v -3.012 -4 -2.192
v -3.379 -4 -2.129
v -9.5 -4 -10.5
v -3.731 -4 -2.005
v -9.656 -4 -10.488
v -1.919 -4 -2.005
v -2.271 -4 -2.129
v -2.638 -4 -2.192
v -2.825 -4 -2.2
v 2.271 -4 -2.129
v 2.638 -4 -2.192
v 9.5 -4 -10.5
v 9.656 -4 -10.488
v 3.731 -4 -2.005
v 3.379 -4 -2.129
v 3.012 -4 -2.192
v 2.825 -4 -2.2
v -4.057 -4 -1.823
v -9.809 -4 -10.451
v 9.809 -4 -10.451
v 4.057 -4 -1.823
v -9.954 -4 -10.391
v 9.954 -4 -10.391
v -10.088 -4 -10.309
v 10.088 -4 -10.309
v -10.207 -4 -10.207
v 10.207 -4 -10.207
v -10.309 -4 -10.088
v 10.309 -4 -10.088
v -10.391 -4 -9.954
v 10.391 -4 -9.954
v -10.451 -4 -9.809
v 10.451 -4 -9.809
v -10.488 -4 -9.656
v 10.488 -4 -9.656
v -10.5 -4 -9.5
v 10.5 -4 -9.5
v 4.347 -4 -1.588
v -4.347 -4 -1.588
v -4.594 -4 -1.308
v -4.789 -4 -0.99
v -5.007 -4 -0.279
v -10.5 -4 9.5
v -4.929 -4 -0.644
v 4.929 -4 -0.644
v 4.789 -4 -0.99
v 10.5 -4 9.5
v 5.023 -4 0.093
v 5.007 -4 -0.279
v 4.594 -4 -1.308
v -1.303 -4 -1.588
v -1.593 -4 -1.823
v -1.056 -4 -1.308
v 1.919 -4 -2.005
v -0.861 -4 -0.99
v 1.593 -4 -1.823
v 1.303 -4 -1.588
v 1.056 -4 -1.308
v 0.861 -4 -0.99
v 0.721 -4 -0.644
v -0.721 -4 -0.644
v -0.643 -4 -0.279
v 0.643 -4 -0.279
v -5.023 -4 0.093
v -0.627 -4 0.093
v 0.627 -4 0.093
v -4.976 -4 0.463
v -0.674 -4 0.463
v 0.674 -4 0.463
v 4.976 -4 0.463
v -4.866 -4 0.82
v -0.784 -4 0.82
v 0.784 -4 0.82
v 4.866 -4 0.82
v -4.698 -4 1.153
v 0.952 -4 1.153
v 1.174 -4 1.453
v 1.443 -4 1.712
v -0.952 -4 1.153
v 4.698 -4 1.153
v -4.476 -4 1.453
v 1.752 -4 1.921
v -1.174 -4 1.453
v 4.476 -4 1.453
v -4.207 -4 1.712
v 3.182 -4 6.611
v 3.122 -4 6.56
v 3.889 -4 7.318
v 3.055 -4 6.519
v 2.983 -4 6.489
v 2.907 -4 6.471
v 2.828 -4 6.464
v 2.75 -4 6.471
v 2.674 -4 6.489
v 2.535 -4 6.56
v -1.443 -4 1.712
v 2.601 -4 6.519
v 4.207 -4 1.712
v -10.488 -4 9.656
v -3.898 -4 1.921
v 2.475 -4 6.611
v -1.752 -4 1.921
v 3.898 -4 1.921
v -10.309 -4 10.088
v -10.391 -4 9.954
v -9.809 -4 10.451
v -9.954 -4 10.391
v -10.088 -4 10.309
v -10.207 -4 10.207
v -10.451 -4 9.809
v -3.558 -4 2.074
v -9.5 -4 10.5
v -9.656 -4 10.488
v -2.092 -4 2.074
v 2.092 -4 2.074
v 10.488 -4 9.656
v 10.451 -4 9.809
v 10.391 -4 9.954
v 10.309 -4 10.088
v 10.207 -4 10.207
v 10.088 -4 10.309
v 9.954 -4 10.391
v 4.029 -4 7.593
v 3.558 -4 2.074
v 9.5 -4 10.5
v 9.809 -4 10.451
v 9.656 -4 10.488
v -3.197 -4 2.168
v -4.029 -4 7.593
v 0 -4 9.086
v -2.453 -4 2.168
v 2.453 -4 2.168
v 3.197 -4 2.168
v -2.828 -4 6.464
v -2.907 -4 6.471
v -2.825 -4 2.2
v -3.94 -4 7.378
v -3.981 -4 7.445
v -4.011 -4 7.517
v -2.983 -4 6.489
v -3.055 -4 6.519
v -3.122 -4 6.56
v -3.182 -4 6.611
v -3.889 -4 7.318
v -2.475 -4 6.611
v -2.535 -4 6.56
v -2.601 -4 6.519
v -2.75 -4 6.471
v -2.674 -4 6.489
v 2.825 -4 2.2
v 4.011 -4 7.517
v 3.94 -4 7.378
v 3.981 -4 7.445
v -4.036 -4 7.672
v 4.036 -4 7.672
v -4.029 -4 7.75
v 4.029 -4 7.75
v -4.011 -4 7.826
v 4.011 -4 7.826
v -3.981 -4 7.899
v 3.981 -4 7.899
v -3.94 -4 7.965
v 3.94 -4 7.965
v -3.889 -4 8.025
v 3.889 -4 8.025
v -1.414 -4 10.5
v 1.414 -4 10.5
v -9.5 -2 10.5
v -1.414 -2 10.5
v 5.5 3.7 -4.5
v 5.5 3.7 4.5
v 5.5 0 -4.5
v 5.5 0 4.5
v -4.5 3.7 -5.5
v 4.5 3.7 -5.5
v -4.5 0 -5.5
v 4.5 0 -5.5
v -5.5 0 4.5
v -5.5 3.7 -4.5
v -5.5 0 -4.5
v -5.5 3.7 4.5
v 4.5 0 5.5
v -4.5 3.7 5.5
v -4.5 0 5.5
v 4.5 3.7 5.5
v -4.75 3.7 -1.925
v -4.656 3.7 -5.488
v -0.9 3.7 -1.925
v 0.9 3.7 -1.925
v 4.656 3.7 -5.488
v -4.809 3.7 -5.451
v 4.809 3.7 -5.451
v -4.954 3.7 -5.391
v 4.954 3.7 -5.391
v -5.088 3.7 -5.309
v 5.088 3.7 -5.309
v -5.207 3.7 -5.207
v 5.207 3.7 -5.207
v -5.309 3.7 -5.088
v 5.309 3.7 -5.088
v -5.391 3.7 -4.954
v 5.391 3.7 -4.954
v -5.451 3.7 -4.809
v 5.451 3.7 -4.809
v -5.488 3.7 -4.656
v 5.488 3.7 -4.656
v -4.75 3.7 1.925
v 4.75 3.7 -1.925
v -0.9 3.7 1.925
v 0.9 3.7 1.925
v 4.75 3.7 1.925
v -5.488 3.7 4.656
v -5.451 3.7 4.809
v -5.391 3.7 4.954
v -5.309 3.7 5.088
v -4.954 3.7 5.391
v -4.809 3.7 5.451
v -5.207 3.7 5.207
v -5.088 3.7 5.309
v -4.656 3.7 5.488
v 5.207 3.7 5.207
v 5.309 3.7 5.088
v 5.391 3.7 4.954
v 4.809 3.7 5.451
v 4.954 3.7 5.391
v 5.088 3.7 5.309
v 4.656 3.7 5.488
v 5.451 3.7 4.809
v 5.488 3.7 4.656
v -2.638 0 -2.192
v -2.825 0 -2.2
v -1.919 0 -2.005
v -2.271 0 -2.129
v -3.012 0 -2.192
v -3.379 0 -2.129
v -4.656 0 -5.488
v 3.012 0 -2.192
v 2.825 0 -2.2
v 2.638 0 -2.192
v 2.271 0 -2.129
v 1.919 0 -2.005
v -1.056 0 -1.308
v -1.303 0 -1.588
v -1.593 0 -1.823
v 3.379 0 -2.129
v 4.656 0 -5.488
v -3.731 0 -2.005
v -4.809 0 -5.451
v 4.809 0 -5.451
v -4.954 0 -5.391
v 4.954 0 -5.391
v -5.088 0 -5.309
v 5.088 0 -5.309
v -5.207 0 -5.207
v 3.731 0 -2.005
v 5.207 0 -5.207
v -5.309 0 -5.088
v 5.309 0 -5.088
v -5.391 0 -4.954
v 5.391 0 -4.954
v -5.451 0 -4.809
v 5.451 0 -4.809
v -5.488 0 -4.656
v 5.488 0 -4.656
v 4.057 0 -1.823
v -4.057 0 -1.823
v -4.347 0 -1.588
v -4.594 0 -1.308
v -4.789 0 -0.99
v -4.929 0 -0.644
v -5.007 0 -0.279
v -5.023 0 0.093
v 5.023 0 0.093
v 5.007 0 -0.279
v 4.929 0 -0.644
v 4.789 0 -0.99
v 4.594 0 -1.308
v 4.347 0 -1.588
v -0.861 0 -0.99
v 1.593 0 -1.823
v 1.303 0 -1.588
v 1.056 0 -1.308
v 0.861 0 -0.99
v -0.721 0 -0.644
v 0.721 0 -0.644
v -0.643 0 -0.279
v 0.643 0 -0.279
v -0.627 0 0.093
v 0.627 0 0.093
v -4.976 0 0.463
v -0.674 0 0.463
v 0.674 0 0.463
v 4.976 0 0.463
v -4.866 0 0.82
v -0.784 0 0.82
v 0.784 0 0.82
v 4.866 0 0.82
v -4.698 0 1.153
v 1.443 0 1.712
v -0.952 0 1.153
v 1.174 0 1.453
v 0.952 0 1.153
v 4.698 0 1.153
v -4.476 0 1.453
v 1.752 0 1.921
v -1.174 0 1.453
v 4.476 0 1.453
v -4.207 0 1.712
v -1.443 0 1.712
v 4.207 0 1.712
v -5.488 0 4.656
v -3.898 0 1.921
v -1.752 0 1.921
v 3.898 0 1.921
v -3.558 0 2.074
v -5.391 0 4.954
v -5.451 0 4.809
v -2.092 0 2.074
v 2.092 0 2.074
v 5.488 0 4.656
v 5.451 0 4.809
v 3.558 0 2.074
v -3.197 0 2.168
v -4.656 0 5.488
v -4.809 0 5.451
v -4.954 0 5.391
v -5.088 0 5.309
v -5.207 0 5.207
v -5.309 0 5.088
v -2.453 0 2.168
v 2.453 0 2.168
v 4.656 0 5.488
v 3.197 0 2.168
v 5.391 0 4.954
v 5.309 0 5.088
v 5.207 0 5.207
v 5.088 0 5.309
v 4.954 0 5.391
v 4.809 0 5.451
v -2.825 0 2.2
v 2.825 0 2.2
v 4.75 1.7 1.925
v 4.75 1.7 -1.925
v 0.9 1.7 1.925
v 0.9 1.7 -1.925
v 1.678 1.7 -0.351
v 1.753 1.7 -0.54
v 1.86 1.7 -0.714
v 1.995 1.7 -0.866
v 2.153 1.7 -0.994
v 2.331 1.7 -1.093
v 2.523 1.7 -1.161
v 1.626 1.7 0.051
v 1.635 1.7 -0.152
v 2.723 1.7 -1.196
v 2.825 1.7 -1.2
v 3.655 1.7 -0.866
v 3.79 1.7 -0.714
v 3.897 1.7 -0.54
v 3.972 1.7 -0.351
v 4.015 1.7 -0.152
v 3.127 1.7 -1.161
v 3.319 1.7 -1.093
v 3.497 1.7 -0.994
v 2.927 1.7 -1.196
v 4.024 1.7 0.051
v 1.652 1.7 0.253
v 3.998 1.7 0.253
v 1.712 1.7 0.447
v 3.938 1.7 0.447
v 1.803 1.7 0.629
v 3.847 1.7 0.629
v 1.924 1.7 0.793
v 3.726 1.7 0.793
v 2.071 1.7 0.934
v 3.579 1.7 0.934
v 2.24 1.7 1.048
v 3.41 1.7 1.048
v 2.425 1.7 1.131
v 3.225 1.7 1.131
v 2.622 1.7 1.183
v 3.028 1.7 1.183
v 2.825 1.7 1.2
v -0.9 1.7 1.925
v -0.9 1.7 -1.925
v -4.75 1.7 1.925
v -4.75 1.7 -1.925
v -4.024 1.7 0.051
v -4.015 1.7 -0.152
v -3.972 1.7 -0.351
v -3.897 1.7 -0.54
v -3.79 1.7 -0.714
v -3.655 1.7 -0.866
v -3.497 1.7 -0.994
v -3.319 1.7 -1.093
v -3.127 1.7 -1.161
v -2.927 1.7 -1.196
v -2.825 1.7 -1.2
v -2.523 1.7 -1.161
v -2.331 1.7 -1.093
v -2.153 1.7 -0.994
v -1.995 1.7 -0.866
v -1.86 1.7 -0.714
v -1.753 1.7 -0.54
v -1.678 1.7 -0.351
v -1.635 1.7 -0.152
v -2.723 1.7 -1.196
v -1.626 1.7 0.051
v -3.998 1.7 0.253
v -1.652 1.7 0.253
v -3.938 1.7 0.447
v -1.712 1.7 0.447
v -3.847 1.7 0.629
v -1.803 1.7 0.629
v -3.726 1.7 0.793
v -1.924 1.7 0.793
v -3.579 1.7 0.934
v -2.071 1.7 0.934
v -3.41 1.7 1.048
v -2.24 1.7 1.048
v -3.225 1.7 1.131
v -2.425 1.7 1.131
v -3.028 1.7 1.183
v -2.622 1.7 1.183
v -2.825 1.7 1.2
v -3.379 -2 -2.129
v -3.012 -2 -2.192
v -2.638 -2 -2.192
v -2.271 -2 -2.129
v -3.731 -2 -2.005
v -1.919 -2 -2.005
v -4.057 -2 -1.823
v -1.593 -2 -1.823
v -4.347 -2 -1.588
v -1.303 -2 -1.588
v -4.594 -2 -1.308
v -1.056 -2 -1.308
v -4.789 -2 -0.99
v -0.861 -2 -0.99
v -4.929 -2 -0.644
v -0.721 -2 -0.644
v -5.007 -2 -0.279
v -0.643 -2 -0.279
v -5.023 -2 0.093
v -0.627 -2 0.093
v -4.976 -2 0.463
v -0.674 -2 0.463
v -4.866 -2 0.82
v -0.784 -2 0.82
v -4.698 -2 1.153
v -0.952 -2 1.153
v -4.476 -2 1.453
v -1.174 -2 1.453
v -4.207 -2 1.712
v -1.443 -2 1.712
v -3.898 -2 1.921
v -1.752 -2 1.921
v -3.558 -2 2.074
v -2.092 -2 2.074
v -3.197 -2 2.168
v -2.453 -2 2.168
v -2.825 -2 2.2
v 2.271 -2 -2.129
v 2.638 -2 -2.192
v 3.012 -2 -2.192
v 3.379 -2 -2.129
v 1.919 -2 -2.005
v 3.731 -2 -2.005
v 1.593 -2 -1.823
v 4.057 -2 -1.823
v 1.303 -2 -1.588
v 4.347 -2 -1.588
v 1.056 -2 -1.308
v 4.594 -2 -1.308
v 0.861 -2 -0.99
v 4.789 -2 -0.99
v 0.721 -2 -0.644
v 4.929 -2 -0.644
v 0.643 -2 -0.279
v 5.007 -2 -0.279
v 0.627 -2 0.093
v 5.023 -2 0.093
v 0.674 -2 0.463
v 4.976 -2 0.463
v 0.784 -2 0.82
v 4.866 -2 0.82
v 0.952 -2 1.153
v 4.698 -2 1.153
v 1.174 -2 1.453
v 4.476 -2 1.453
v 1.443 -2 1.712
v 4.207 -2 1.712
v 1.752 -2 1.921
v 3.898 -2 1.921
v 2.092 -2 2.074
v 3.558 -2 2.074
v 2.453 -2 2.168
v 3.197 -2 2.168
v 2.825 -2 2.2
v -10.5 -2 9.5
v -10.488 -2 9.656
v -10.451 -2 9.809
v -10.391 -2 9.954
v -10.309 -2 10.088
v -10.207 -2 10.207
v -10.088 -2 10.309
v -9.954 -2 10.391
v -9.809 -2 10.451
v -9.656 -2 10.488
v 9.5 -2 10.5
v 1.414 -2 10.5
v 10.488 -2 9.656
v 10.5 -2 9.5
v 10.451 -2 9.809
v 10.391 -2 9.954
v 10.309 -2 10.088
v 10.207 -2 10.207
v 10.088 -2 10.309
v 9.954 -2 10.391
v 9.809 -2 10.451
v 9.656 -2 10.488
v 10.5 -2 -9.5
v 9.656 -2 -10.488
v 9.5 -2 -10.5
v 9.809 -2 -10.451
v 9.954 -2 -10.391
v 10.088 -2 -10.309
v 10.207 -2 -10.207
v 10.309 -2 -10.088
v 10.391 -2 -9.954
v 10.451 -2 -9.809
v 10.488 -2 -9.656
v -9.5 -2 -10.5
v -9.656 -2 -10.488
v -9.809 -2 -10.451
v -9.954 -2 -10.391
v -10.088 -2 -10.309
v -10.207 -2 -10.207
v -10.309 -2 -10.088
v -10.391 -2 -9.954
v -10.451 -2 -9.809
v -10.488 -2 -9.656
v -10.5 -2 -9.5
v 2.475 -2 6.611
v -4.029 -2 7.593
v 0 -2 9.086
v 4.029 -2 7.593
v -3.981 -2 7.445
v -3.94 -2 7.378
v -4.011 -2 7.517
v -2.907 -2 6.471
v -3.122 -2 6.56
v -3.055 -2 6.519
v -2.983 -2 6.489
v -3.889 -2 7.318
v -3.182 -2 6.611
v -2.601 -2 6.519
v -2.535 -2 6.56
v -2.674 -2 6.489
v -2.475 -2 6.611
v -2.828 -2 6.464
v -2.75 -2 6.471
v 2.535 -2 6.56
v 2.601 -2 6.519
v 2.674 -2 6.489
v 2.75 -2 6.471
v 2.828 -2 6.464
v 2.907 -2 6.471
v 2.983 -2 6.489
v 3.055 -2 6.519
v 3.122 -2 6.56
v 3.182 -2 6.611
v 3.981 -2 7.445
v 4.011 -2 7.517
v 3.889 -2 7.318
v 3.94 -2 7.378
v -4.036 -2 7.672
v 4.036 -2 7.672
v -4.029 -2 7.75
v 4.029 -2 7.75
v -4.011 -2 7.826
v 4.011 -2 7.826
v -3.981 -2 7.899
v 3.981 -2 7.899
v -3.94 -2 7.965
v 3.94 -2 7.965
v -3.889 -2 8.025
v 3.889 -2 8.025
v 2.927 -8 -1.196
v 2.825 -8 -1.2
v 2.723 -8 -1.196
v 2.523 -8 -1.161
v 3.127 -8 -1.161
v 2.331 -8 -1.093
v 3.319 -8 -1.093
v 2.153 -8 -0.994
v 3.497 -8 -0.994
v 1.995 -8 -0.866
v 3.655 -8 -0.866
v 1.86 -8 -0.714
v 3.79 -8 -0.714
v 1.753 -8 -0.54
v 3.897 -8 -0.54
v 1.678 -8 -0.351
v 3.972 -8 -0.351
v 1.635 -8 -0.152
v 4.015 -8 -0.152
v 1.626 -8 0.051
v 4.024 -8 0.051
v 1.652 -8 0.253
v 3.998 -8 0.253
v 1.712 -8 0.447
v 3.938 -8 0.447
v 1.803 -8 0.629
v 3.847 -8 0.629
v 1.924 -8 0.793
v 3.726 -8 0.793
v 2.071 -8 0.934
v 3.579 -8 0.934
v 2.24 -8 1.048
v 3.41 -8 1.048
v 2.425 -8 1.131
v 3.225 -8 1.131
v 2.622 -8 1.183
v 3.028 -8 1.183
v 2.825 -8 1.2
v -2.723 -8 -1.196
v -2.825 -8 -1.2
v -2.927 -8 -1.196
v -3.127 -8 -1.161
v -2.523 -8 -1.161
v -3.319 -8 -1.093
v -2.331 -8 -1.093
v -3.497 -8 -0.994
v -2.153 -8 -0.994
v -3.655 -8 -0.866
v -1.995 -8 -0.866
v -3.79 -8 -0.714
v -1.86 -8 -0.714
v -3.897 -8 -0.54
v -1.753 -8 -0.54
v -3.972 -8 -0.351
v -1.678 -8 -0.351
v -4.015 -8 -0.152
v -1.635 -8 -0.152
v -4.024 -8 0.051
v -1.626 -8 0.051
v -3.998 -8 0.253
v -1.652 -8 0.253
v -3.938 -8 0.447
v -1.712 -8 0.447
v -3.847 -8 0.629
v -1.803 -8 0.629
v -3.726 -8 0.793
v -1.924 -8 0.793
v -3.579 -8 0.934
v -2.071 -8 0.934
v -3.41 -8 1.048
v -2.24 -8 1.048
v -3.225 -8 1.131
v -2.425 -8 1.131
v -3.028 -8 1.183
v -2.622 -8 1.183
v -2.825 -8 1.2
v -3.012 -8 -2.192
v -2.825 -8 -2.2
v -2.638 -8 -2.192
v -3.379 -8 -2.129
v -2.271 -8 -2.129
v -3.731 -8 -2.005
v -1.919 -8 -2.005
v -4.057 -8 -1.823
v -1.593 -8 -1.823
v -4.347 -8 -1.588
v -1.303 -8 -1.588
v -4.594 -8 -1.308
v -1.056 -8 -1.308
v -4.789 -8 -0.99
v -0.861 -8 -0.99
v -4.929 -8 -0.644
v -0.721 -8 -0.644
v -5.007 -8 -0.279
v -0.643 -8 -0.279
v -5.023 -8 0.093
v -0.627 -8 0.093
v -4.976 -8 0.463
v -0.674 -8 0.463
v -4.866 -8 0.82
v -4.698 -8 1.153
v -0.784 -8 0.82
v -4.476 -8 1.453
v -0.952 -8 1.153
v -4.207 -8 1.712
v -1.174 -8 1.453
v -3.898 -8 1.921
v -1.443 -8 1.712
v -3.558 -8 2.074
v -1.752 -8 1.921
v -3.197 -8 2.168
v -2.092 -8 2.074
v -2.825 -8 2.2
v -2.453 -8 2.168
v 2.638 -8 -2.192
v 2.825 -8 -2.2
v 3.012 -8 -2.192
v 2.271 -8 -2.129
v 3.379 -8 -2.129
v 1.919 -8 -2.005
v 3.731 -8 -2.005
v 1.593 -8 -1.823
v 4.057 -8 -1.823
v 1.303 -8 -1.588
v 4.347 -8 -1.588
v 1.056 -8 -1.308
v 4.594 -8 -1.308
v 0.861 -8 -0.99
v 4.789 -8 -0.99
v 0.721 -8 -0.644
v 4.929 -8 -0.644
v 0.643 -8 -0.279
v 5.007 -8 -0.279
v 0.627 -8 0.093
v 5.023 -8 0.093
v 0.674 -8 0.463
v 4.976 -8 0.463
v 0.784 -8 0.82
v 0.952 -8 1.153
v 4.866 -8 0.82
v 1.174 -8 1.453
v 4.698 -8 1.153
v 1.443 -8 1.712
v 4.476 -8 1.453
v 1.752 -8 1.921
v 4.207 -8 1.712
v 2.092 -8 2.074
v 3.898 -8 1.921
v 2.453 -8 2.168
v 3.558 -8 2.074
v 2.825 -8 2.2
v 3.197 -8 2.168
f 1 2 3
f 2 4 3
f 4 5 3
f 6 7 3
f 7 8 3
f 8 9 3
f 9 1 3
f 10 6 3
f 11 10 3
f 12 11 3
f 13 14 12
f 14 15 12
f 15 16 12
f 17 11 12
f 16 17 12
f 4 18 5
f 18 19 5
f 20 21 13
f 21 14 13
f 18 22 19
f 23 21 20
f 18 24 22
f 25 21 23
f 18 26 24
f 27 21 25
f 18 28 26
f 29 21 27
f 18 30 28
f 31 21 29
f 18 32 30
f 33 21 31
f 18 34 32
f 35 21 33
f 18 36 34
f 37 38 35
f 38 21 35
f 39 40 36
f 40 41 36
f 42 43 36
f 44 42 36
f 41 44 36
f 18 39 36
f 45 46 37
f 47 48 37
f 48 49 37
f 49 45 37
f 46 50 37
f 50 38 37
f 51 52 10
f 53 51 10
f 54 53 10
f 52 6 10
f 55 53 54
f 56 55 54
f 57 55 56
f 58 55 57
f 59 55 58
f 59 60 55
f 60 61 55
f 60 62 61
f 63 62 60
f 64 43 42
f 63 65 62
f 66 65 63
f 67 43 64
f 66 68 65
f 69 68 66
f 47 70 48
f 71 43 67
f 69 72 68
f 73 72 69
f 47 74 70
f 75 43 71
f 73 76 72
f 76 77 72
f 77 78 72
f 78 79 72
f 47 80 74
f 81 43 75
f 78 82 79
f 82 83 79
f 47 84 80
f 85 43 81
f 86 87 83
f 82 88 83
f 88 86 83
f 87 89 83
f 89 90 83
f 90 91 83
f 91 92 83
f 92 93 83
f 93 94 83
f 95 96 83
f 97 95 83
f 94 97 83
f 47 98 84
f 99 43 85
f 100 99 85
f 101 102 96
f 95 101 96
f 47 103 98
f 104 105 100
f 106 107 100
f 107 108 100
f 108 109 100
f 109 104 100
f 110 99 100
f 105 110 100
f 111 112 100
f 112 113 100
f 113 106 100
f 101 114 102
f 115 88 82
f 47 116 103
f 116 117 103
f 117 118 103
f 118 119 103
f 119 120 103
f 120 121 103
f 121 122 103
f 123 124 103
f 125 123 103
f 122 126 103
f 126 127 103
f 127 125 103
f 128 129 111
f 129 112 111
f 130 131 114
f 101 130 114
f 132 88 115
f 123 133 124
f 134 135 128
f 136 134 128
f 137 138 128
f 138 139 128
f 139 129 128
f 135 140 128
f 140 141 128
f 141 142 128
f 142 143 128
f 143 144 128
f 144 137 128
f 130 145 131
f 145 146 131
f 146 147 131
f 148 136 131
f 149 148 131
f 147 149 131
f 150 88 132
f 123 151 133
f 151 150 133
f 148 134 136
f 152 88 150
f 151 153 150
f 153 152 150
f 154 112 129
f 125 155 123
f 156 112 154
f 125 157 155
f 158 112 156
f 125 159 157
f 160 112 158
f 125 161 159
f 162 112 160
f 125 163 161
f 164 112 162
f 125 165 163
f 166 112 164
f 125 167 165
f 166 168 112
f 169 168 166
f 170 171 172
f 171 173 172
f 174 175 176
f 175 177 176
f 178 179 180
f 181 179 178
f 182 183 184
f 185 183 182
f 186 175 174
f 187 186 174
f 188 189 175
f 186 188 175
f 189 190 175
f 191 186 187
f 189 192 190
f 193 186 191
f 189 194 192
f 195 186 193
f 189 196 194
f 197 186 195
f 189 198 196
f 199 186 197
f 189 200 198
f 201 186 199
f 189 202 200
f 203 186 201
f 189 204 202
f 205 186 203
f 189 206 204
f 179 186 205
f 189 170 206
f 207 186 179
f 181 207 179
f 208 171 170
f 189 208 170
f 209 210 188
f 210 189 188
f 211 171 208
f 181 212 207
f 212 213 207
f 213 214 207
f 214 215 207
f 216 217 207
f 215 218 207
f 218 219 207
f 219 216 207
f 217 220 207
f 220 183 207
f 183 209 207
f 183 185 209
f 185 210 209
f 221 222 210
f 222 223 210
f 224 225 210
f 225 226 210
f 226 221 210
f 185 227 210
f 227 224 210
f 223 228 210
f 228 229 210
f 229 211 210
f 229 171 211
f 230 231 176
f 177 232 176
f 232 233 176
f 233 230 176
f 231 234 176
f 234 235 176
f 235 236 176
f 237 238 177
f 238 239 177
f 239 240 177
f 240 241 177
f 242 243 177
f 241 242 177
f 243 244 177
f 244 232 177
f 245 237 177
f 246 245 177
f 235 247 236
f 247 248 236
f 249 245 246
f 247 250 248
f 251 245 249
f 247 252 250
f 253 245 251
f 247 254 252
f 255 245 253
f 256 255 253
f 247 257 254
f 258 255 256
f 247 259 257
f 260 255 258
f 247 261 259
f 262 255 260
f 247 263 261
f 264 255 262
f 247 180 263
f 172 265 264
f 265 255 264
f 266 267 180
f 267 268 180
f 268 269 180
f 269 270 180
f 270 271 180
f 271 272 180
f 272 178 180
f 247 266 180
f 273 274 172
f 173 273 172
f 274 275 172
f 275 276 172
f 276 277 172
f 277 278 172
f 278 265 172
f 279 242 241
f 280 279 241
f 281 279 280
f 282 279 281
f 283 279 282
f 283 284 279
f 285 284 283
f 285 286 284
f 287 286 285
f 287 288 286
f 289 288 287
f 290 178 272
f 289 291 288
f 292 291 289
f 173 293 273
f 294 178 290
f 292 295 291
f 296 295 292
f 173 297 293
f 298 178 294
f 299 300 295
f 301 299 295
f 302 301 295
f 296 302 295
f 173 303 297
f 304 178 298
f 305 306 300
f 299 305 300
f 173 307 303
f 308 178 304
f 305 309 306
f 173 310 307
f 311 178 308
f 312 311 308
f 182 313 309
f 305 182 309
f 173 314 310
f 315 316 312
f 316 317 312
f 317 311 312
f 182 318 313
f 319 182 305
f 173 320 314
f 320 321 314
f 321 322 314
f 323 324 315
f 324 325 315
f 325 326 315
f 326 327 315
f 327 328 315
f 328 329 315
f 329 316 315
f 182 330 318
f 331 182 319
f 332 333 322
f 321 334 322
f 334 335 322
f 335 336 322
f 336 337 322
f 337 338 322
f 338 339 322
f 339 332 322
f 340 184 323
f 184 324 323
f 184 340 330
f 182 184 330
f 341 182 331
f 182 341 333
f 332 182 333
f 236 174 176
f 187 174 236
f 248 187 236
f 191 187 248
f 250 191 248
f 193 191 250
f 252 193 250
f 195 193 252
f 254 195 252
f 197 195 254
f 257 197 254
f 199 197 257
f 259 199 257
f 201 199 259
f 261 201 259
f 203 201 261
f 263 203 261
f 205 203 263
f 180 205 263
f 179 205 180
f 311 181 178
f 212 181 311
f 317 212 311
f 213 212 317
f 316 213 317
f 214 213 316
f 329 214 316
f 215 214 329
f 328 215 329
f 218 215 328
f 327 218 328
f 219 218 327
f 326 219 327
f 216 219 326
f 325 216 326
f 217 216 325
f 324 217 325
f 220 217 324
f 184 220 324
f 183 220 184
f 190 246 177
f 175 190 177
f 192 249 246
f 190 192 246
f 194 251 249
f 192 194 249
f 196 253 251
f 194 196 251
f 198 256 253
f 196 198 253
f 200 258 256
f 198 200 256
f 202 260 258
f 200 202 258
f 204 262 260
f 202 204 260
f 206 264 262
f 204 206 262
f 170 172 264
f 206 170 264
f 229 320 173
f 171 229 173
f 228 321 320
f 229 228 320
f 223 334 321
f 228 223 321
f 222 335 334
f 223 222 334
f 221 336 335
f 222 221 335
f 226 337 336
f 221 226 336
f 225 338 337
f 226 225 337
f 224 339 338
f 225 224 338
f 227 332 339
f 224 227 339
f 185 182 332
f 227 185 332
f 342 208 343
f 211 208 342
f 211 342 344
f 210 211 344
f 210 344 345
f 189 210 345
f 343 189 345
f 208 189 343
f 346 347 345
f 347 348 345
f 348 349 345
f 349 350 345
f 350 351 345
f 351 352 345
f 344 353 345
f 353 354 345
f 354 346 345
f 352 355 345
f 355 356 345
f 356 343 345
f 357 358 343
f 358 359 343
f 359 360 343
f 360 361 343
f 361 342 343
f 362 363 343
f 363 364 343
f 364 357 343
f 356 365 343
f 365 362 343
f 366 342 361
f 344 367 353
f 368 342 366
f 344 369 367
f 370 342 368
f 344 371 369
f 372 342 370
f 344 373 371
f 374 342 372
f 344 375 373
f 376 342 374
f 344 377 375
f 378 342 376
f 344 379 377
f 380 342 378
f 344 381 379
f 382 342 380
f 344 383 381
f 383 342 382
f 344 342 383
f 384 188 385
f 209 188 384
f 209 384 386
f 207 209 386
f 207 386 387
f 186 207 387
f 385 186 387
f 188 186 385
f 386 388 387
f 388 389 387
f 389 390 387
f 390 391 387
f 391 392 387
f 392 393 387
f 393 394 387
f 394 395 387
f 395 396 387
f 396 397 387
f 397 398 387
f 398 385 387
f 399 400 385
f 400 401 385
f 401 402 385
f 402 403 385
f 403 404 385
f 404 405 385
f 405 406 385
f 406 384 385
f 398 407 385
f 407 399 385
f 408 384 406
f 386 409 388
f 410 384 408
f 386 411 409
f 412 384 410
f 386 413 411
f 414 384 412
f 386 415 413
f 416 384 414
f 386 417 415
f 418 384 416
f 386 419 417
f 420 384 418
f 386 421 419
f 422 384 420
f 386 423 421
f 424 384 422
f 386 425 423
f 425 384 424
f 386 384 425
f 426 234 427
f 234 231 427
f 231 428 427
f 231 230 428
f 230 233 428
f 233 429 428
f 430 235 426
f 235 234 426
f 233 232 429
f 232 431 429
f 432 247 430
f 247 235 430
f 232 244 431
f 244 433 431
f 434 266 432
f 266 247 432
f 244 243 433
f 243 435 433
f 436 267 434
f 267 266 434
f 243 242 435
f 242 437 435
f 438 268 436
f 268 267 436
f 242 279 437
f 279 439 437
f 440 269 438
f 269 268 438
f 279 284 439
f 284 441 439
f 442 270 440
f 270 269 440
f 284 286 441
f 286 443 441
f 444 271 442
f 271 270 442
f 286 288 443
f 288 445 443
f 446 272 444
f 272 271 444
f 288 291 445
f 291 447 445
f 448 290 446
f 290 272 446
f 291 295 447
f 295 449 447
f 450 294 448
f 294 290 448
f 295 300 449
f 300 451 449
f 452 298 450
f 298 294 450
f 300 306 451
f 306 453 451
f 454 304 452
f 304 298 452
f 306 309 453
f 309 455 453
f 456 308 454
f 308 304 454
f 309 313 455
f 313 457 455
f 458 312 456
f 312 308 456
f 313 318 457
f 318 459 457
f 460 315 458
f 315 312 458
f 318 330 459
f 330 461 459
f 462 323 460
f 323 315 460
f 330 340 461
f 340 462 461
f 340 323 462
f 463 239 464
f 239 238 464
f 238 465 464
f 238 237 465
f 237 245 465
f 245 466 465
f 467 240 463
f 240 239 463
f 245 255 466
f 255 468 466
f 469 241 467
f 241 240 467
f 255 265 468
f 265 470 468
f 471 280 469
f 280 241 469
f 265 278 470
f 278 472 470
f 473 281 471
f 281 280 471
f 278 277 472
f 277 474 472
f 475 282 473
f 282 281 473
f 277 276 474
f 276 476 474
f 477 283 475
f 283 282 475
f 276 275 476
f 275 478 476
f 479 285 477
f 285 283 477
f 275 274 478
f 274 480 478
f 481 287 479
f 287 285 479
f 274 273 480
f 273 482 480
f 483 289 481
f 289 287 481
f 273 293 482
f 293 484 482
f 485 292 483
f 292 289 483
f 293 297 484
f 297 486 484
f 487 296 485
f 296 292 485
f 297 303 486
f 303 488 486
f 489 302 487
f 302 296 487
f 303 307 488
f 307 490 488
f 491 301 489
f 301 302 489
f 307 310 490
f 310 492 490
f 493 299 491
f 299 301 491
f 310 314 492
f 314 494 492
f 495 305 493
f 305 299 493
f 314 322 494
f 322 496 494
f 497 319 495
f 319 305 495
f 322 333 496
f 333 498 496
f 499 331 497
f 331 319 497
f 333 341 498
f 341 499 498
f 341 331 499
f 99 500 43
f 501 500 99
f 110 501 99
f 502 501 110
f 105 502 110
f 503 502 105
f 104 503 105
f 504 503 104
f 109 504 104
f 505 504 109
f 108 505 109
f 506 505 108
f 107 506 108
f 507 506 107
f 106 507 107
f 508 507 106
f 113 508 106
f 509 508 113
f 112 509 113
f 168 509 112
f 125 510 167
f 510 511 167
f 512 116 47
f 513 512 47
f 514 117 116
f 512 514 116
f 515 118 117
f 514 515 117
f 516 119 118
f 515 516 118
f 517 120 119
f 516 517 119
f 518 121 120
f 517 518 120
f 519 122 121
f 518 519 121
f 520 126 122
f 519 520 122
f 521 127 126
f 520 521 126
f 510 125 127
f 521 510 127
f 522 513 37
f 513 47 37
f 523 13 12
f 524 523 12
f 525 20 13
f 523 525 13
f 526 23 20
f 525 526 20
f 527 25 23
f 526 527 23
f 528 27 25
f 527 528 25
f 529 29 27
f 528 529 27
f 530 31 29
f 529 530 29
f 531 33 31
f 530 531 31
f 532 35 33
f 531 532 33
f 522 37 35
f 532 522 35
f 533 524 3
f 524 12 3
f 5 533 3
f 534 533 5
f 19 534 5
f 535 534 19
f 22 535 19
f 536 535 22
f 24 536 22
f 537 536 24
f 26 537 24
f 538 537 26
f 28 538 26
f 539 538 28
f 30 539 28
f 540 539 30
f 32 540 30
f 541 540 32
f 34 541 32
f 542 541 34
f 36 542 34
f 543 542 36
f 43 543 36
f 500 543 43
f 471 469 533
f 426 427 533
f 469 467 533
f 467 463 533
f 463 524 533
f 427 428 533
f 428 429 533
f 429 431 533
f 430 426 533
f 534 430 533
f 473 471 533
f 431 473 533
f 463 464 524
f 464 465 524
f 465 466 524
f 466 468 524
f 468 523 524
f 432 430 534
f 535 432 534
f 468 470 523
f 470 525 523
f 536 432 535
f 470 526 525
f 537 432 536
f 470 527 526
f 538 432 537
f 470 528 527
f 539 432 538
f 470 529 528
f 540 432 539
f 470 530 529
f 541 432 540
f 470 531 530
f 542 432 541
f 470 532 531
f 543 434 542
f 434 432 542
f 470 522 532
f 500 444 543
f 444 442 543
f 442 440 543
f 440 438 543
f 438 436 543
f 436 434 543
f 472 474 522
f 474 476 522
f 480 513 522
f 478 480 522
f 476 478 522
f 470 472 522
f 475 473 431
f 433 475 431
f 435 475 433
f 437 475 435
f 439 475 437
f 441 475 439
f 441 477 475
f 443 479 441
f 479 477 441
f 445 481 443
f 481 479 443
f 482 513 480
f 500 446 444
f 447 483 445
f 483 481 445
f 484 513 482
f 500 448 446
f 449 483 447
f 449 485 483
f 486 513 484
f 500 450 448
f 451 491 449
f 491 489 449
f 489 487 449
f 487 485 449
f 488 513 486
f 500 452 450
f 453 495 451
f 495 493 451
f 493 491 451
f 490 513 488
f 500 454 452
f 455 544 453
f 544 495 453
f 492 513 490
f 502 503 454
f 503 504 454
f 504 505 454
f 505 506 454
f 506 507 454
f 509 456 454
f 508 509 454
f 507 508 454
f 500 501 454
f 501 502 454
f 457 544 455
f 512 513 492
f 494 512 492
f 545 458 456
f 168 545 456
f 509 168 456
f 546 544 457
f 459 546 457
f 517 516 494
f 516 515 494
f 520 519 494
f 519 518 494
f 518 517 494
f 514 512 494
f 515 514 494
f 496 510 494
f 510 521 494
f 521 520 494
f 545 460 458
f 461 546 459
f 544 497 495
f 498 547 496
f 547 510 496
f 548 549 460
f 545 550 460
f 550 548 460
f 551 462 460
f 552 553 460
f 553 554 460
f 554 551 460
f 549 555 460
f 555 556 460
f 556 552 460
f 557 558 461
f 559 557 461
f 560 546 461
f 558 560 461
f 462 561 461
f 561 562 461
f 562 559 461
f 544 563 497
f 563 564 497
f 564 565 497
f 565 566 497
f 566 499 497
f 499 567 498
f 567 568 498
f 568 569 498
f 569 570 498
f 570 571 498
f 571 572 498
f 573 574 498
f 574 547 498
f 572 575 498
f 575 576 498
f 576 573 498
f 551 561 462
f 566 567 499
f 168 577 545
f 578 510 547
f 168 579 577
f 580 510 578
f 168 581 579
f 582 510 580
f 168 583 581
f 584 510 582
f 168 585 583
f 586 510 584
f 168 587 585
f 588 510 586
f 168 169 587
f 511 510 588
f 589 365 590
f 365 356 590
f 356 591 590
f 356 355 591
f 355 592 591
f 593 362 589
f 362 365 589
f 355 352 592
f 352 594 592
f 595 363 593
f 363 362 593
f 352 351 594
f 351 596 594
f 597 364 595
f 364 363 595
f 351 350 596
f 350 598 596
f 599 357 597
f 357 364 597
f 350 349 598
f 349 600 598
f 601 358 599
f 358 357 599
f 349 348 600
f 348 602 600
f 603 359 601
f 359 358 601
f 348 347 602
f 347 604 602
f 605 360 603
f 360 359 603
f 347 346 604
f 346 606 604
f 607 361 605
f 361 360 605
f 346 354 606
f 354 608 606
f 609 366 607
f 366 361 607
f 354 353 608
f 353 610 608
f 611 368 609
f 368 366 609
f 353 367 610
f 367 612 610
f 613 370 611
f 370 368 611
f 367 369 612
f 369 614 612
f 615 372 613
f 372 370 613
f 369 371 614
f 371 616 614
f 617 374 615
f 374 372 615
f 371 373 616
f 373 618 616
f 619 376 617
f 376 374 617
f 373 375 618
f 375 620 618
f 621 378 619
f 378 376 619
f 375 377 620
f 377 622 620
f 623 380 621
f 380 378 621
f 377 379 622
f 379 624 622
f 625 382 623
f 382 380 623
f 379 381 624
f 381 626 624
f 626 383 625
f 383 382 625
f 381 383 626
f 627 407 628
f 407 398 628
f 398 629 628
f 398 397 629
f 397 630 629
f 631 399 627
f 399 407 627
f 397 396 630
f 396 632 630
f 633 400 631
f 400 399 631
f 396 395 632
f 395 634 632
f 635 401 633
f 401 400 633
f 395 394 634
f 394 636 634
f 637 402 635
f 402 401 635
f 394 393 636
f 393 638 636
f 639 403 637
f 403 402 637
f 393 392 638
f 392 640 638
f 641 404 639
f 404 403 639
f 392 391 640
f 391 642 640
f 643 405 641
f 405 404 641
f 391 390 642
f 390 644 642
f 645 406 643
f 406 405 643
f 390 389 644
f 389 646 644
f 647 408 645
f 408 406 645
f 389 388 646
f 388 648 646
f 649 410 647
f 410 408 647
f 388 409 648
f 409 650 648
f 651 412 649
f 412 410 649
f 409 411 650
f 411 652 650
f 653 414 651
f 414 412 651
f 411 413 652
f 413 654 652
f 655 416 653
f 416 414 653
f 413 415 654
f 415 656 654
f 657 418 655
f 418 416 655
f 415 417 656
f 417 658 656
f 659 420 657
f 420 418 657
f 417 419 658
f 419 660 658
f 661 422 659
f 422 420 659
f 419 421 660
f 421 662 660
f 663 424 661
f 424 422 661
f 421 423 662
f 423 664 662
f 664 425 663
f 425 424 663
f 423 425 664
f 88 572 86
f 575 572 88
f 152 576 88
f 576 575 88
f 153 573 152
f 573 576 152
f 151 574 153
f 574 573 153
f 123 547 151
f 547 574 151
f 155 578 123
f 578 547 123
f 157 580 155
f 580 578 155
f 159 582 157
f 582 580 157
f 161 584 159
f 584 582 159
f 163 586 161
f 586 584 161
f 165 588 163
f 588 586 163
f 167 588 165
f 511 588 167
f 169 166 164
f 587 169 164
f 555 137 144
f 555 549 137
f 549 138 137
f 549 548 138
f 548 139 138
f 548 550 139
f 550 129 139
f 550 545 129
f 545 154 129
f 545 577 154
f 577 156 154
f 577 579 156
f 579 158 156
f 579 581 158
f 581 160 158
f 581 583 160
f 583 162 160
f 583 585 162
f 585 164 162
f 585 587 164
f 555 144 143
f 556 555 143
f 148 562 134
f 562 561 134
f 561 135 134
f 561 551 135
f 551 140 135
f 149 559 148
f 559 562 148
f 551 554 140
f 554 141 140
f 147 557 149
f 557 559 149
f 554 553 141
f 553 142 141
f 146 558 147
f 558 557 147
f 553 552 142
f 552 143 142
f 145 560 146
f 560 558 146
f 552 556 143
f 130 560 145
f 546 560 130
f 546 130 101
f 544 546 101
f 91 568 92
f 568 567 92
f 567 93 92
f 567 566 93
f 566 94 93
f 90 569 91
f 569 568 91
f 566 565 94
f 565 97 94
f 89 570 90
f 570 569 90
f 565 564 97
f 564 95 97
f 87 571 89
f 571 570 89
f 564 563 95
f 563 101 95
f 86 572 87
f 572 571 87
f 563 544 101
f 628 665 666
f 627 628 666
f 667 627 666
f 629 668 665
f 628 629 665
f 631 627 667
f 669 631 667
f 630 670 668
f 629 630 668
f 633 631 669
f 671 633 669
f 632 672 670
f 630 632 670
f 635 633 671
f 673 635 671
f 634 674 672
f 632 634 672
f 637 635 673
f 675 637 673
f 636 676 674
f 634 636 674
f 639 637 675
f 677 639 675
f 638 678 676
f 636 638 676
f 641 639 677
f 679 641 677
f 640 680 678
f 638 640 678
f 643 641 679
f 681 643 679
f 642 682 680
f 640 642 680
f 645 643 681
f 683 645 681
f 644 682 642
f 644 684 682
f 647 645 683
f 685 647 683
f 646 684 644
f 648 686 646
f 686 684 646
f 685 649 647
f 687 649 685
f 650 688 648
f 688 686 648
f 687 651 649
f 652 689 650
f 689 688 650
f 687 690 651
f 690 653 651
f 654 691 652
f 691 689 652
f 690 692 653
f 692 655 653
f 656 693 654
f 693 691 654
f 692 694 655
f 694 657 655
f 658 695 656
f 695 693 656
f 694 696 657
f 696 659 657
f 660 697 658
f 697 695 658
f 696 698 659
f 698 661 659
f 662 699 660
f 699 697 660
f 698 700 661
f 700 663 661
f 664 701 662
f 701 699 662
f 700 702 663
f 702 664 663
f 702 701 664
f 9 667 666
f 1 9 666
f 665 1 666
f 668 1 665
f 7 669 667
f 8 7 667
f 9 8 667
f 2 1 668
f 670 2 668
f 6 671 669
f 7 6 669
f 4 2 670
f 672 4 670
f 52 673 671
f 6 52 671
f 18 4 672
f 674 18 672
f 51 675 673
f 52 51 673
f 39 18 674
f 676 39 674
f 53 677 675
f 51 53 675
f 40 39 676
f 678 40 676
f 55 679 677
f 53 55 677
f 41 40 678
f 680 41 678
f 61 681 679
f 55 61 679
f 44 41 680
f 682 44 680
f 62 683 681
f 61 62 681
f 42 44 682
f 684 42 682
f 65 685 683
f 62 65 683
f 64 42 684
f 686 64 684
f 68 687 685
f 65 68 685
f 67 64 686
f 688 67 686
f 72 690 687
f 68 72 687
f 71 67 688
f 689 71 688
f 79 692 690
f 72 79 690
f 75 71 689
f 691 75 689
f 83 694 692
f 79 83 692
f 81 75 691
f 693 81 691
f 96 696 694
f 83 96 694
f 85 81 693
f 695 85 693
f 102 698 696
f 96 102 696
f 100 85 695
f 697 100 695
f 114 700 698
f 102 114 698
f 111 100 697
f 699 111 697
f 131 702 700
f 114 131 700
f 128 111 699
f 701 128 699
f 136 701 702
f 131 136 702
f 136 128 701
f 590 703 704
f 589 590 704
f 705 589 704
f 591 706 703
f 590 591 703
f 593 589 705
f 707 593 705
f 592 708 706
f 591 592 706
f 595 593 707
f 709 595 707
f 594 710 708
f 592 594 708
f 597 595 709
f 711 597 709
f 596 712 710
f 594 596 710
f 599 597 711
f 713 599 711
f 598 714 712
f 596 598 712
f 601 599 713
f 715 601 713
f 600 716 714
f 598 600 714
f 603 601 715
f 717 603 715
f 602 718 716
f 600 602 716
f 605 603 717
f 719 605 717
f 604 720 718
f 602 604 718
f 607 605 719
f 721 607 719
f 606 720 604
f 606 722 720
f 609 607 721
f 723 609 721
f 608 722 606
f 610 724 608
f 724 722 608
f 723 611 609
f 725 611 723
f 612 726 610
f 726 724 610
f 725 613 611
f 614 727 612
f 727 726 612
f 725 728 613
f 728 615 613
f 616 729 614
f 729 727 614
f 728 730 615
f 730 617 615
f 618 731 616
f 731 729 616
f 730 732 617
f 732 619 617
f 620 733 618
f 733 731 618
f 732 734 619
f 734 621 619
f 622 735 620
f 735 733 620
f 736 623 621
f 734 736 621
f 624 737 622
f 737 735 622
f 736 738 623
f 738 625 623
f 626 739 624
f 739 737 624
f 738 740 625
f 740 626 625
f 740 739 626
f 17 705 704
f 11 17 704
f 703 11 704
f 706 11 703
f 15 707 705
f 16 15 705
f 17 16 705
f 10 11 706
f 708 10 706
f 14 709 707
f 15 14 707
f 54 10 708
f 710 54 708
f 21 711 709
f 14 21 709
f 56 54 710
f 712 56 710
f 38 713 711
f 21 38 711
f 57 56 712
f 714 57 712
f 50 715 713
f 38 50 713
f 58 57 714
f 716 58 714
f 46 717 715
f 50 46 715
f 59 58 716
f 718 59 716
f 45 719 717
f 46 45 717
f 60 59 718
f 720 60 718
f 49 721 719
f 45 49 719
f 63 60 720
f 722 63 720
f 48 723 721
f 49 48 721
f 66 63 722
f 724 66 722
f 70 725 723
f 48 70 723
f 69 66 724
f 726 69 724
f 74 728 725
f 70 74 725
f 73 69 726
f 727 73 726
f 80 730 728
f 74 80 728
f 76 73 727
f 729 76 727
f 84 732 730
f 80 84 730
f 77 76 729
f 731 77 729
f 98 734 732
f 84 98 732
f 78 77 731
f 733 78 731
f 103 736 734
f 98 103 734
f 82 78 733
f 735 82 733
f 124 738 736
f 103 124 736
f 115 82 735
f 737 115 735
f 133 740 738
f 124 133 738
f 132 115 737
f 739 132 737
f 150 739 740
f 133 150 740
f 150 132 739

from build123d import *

# Parameters (mm, degrees)
SKETCH1_W           = 11
SKETCH1_H           = 11
BOSS_EXTRUDE1_DEPTH = 3.7
FILLET1_R           = 1
SKETCH2_W           = 3.85
SKETCH2_H           = 3.85
CUT_EXTRUDE1_DEPTH  = 2
SKETCH4_R           = 2.2
BOSS_EXTRUDE2_DEPTH = 4
BOSS_EXTRUDE3_DEPTH = 2
SKETCH3_R           = 1.2
CUT_EXTRUDE2_DEPTH  = 17.726924403
CUT_EXTRUDE3_DEPTH  = 16.90565937
SKETCH8_R           = 2.2
SKETCH8_R_2         = 1.2
BOSS_EXTRUDE4_DEPTH = 4


with BuildPart() as part:
    # Sketch1 → Boss-Extrude1 (new body)
    with BuildSketch(Plane(origin=(0, 0, 0), x_dir=(1, 0, 0), z_dir=(0, 1, 0))):
        Rectangle(SKETCH1_W, SKETCH1_H)
    extrude(amount=BOSS_EXTRUDE1_DEPTH)

    # Fillet1
    fillet1_edges = [part.edges().sort_by_distance(p)[0] for p in [
        (5.5, 1.85, 5.5),
        (-5.5, 1.85, 5.5),
        (-5.5, 1.85, -5.5),
        (5.5, 1.85, -5.5),
    ]]
    fillet(fillet1_edges, radius=FILLET1_R)

    # Sketch2 → Cut-Extrude1 (cut)
    with BuildSketch(Plane(origin=(0, 3.7, 0), x_dir=(1, 0, 0), z_dir=(0, 1, 0))):
        with Locations((-2.825, 0)):
            Rectangle(SKETCH2_W, SKETCH2_H)
        with Locations((2.825, 0)):
            Rectangle(SKETCH2_W, SKETCH2_H)
    extrude(amount=-CUT_EXTRUDE1_DEPTH, mode=Mode.SUBTRACT)

    # Sketch4 → Boss-Extrude2 (add)
    with BuildSketch(Plane(origin=(0, 0, 0), x_dir=(-1, 0, 0), z_dir=(0, -1, 0))):
        with Locations(Location((2.825, 0, 0), (0, 0, 90))):
            Circle(SKETCH4_R)
        with Locations(Location((-2.825, 0, 0), (0, 0, 90))):
            Circle(SKETCH4_R)
    extrude(amount=BOSS_EXTRUDE2_DEPTH)

    # Sketch5 → Boss-Extrude3 (add)
    with BuildSketch(Plane(origin=(0, -4, 0), x_dir=(-1, 0, 0), z_dir=(0, -1, 0))):
        with BuildLine():
            Line((9.5, 10.5), (-9.5, 10.5))
            ThreePointArc((-9.5, 10.5), (-10.207106781, 10.207106781), (-10.5, 9.5))
            Line((-10.5, 9.5), (-10.5, -9.5))
            ThreePointArc((-10.5, -9.5), (-10.207106781, -10.207106781), (-9.5, -10.5))
            Line((-9.5, -10.5), (9.5, -10.5))
            ThreePointArc((9.5, -10.5), (10.207106781, -10.207106781), (10.5, -9.5))
            Line((10.5, -9.5), (10.5, 9.5))
            ThreePointArc((10.5, 9.5), (10.207106781, 10.207106781), (9.5, 10.5))
        make_face()
    extrude(amount=-BOSS_EXTRUDE3_DEPTH)

    # Sketch3 → Cut-Extrude2 (cut, through all)
    with BuildSketch(Plane(origin=(0, 3.7, 0), x_dir=(1, 0, 0), z_dir=(0, 1, 0))):
        with Locations(Location((-2.825, 0, 0), (0, 0, 270))):
            Circle(SKETCH3_R)
        with Locations(Location((2.825, 0, 0), (0, 0, 270))):
            Circle(SKETCH3_R)
    extrude(amount=-CUT_EXTRUDE2_DEPTH, mode=Mode.SUBTRACT)

    # Sketch7 → Cut-Extrude3 (cut, through all)
    with BuildSketch(Plane(origin=(0, -2, 0), x_dir=(1, 0, 0), z_dir=(0, 1, 0))):
        with BuildLine():
            Line((0, -9.085786438), (1.414213562, -10.5))
            Line((1.414213562, -10.5), (3.889087297, -8.025126266))
            ThreePointArc((3.889087297, -8.025126266), (4.035533906, -7.671572875), (3.889087297, -7.318019485))
            Line((3.889087297, -7.318019485), (3.181980515, -6.610912703))
            ThreePointArc((3.181980515, -6.610912703), (2.828427125, -6.464466094), (2.474873734, -6.610912703))
            Line((2.474873734, -6.610912703), (0, -9.085786438))
        make_face()
        with BuildLine():
            Line((-3.889087297, -8.025126266), (-1.414213562, -10.5))
            Line((-1.414213562, -10.5), (0, -9.085786438))
            Line((0, -9.085786438), (-2.474873734, -6.610912703))
            ThreePointArc((-2.474873734, -6.610912703), (-2.828427125, -6.464466094), (-3.181980515, -6.610912703))
            Line((-3.181980515, -6.610912703), (-3.889087297, -7.318019485))
            ThreePointArc((-3.889087297, -7.318019485), (-4.035533906, -7.671572875), (-3.889087297, -8.025126266))
        make_face()
        Polygon((-1.414213562, -10.5), (1.414213562, -10.5), (0, -9.085786438), align=None)
    extrude(amount=-CUT_EXTRUDE3_DEPTH, mode=Mode.SUBTRACT)

    # Sketch8 → Boss-Extrude4 (add)
    # profile 1 of 2: a face of its own
    with BuildSketch(Plane.XZ.offset(4)):
        with Locations(Location((-2.825, 0, 0), (0, 0, 90))):
            Circle(SKETCH8_R)
        with Locations(Location((-2.825, 0, 0), (0, 0, 90))):
            Circle(SKETCH8_R_2, mode=Mode.SUBTRACT)
    # profile 2 of 2: a face of its own
    with BuildSketch(Plane.XZ.offset(4)):
        with Locations(Location((2.825, 0, 0), (0, 0, 90))):
            Circle(SKETCH8_R)
        with Locations(Location((2.825, 0, 0), (0, 0, 90))):
            Circle(SKETCH8_R_2, mode=Mode.SUBTRACT)
    extrude(amount=BOSS_EXTRUDE4_DEPTH)


solid = part.part
